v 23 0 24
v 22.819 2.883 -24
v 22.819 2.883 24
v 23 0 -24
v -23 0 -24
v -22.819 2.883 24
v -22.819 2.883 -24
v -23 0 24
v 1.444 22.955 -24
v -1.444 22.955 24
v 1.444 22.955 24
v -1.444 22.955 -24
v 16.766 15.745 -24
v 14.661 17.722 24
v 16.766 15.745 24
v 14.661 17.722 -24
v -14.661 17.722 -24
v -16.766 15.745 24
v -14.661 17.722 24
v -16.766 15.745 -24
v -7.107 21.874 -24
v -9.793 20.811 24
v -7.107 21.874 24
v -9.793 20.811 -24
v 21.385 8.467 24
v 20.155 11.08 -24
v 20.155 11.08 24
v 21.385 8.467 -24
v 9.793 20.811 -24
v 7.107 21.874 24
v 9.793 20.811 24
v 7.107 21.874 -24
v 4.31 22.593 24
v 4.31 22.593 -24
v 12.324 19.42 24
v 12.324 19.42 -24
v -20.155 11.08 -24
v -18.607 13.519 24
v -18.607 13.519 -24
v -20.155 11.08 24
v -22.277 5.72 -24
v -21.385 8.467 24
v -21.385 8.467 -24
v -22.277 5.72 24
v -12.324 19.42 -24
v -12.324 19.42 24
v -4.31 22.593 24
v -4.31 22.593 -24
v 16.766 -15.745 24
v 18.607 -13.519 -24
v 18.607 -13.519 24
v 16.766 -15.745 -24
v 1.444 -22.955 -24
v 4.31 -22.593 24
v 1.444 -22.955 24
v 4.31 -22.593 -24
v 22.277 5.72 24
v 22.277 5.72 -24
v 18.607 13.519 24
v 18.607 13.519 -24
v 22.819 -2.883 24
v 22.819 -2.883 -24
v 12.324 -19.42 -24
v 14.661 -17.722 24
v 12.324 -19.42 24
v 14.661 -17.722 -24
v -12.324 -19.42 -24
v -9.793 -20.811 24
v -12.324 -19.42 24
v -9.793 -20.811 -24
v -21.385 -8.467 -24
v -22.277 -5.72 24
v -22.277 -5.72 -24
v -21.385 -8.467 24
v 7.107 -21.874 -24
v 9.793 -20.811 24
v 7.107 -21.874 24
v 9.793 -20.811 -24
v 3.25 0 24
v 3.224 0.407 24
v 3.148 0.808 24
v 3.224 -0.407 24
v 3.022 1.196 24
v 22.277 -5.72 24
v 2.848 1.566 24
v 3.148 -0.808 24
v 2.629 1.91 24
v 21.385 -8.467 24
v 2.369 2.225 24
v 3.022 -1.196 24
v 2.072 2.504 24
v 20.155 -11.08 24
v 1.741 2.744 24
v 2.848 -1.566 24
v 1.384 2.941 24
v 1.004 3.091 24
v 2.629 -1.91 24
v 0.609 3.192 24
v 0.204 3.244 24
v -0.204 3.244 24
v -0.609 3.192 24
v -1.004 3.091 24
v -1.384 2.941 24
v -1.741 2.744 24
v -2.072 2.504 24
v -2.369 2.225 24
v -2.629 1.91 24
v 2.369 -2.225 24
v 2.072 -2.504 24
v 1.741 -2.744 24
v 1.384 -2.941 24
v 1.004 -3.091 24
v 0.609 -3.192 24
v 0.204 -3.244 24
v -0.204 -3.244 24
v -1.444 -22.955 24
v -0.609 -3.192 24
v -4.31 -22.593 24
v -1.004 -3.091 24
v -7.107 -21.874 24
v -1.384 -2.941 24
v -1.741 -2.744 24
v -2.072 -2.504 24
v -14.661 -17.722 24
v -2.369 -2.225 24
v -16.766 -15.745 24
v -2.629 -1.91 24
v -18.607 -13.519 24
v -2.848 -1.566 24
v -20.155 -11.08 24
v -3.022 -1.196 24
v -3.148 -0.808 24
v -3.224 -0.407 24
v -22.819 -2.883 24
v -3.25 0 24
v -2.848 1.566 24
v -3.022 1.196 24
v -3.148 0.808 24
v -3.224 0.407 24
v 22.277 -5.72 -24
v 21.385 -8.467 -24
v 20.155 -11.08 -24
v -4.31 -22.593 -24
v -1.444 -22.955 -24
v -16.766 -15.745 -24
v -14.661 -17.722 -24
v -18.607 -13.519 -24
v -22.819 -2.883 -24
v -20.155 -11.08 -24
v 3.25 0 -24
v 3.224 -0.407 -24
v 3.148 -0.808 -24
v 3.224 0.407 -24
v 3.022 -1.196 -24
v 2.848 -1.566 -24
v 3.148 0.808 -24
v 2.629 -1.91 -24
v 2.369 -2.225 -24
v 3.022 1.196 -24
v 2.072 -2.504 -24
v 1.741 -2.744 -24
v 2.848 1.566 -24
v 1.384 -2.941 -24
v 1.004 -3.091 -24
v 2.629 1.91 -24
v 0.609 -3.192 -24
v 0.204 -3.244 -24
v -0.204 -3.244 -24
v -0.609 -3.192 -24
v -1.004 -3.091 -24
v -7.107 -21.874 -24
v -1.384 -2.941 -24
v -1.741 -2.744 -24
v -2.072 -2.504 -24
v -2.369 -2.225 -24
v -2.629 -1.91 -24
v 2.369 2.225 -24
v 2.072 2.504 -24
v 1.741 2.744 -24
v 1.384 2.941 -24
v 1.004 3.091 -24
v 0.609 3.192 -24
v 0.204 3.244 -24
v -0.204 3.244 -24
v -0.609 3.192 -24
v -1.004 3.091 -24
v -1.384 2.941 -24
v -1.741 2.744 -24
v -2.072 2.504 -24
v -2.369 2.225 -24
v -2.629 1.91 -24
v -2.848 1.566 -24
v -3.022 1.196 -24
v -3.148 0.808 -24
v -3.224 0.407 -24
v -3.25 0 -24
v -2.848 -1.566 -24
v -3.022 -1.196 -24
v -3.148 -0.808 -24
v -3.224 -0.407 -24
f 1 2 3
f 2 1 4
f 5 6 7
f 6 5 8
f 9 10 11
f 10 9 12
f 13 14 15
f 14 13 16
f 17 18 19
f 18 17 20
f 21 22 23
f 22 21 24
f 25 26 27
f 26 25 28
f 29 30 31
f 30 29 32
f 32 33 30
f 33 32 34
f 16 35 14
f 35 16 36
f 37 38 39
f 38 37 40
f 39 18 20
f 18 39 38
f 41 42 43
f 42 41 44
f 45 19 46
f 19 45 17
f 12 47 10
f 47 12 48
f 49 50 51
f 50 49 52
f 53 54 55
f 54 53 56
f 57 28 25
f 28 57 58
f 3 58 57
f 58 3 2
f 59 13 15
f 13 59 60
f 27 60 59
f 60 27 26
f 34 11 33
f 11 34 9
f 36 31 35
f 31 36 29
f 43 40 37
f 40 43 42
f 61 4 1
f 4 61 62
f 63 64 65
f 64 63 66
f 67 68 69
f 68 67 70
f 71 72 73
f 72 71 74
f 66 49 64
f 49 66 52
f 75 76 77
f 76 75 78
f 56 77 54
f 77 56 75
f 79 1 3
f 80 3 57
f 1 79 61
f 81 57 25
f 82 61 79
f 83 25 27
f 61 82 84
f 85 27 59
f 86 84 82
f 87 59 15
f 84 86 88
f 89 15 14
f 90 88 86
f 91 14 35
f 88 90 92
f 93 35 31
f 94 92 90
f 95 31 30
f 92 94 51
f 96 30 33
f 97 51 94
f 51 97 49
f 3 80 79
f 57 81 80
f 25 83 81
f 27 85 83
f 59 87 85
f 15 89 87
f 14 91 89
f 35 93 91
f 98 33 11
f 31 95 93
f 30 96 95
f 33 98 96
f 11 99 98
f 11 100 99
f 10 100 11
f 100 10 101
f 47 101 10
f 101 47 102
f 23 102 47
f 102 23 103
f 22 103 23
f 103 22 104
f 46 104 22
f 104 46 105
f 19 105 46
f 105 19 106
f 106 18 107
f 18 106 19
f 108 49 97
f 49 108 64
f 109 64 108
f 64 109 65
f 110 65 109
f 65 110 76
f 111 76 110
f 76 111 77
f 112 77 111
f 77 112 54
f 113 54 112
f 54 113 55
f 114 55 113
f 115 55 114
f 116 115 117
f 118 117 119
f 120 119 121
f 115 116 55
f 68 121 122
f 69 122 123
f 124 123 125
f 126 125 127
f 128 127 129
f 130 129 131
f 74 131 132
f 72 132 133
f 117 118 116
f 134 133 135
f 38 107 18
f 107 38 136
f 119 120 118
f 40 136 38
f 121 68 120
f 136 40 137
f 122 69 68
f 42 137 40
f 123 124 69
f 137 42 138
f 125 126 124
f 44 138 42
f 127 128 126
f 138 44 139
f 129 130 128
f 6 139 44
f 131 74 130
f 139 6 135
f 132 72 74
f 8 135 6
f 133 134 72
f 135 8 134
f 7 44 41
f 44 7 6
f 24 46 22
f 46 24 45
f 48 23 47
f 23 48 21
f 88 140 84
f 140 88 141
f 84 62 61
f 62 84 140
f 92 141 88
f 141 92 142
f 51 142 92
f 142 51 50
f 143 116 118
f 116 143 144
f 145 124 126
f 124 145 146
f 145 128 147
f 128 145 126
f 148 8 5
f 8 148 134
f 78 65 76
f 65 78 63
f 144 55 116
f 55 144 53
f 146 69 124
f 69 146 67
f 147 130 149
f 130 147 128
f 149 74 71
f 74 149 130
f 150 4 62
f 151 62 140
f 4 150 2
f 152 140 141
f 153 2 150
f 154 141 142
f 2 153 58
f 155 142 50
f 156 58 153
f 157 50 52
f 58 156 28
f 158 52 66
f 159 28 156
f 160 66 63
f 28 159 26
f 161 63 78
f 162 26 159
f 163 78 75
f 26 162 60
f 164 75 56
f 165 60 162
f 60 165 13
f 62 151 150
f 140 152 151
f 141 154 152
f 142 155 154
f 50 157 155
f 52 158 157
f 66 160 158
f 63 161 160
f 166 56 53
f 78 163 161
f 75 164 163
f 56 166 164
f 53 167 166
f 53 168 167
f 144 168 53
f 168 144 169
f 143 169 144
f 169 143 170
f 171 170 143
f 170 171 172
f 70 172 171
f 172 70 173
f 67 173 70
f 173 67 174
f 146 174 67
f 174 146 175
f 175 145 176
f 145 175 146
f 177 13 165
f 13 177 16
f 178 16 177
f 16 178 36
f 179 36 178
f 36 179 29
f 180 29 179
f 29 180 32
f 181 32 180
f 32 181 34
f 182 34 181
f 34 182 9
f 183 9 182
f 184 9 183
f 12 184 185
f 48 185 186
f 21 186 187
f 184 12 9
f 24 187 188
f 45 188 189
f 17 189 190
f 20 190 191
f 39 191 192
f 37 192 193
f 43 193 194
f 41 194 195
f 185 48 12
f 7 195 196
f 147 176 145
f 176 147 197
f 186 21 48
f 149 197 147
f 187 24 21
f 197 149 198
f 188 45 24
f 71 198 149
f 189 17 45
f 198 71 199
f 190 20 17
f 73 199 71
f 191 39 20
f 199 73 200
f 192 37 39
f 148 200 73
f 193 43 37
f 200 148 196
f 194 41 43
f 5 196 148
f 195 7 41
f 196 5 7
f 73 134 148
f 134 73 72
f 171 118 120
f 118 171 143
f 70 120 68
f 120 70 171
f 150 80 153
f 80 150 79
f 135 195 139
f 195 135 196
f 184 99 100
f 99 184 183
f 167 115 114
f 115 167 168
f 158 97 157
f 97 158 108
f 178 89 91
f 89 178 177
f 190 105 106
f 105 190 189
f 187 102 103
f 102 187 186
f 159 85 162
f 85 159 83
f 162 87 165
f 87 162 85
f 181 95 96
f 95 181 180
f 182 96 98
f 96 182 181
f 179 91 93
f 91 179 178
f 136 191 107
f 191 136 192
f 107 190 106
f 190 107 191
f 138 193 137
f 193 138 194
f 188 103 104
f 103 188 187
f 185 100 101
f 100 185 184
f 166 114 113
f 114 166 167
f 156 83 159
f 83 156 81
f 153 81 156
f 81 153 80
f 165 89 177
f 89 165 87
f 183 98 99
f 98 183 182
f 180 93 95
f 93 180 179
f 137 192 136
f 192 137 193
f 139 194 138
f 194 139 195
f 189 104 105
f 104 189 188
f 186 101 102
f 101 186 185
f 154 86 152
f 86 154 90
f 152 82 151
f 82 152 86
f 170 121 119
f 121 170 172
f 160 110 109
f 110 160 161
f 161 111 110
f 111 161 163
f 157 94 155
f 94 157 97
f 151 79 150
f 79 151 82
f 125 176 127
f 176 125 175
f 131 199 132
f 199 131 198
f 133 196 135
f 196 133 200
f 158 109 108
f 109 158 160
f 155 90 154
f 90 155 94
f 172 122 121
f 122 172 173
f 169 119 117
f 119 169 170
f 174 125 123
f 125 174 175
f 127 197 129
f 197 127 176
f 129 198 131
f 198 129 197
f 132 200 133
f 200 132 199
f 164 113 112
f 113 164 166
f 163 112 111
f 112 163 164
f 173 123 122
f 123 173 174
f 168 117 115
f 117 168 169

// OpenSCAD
$fn = 50;


difference() {
	union() {
		translate(v = [0, 0, -24.0000000000]) {
			cylinder(h = 48, r = 23.0000000000);
		}
	}
	union() {
		translate(v = [0, 0, -100.0000000000]) {
			cylinder(h = 200, r = 3.2500000000);
		}
	}
}
